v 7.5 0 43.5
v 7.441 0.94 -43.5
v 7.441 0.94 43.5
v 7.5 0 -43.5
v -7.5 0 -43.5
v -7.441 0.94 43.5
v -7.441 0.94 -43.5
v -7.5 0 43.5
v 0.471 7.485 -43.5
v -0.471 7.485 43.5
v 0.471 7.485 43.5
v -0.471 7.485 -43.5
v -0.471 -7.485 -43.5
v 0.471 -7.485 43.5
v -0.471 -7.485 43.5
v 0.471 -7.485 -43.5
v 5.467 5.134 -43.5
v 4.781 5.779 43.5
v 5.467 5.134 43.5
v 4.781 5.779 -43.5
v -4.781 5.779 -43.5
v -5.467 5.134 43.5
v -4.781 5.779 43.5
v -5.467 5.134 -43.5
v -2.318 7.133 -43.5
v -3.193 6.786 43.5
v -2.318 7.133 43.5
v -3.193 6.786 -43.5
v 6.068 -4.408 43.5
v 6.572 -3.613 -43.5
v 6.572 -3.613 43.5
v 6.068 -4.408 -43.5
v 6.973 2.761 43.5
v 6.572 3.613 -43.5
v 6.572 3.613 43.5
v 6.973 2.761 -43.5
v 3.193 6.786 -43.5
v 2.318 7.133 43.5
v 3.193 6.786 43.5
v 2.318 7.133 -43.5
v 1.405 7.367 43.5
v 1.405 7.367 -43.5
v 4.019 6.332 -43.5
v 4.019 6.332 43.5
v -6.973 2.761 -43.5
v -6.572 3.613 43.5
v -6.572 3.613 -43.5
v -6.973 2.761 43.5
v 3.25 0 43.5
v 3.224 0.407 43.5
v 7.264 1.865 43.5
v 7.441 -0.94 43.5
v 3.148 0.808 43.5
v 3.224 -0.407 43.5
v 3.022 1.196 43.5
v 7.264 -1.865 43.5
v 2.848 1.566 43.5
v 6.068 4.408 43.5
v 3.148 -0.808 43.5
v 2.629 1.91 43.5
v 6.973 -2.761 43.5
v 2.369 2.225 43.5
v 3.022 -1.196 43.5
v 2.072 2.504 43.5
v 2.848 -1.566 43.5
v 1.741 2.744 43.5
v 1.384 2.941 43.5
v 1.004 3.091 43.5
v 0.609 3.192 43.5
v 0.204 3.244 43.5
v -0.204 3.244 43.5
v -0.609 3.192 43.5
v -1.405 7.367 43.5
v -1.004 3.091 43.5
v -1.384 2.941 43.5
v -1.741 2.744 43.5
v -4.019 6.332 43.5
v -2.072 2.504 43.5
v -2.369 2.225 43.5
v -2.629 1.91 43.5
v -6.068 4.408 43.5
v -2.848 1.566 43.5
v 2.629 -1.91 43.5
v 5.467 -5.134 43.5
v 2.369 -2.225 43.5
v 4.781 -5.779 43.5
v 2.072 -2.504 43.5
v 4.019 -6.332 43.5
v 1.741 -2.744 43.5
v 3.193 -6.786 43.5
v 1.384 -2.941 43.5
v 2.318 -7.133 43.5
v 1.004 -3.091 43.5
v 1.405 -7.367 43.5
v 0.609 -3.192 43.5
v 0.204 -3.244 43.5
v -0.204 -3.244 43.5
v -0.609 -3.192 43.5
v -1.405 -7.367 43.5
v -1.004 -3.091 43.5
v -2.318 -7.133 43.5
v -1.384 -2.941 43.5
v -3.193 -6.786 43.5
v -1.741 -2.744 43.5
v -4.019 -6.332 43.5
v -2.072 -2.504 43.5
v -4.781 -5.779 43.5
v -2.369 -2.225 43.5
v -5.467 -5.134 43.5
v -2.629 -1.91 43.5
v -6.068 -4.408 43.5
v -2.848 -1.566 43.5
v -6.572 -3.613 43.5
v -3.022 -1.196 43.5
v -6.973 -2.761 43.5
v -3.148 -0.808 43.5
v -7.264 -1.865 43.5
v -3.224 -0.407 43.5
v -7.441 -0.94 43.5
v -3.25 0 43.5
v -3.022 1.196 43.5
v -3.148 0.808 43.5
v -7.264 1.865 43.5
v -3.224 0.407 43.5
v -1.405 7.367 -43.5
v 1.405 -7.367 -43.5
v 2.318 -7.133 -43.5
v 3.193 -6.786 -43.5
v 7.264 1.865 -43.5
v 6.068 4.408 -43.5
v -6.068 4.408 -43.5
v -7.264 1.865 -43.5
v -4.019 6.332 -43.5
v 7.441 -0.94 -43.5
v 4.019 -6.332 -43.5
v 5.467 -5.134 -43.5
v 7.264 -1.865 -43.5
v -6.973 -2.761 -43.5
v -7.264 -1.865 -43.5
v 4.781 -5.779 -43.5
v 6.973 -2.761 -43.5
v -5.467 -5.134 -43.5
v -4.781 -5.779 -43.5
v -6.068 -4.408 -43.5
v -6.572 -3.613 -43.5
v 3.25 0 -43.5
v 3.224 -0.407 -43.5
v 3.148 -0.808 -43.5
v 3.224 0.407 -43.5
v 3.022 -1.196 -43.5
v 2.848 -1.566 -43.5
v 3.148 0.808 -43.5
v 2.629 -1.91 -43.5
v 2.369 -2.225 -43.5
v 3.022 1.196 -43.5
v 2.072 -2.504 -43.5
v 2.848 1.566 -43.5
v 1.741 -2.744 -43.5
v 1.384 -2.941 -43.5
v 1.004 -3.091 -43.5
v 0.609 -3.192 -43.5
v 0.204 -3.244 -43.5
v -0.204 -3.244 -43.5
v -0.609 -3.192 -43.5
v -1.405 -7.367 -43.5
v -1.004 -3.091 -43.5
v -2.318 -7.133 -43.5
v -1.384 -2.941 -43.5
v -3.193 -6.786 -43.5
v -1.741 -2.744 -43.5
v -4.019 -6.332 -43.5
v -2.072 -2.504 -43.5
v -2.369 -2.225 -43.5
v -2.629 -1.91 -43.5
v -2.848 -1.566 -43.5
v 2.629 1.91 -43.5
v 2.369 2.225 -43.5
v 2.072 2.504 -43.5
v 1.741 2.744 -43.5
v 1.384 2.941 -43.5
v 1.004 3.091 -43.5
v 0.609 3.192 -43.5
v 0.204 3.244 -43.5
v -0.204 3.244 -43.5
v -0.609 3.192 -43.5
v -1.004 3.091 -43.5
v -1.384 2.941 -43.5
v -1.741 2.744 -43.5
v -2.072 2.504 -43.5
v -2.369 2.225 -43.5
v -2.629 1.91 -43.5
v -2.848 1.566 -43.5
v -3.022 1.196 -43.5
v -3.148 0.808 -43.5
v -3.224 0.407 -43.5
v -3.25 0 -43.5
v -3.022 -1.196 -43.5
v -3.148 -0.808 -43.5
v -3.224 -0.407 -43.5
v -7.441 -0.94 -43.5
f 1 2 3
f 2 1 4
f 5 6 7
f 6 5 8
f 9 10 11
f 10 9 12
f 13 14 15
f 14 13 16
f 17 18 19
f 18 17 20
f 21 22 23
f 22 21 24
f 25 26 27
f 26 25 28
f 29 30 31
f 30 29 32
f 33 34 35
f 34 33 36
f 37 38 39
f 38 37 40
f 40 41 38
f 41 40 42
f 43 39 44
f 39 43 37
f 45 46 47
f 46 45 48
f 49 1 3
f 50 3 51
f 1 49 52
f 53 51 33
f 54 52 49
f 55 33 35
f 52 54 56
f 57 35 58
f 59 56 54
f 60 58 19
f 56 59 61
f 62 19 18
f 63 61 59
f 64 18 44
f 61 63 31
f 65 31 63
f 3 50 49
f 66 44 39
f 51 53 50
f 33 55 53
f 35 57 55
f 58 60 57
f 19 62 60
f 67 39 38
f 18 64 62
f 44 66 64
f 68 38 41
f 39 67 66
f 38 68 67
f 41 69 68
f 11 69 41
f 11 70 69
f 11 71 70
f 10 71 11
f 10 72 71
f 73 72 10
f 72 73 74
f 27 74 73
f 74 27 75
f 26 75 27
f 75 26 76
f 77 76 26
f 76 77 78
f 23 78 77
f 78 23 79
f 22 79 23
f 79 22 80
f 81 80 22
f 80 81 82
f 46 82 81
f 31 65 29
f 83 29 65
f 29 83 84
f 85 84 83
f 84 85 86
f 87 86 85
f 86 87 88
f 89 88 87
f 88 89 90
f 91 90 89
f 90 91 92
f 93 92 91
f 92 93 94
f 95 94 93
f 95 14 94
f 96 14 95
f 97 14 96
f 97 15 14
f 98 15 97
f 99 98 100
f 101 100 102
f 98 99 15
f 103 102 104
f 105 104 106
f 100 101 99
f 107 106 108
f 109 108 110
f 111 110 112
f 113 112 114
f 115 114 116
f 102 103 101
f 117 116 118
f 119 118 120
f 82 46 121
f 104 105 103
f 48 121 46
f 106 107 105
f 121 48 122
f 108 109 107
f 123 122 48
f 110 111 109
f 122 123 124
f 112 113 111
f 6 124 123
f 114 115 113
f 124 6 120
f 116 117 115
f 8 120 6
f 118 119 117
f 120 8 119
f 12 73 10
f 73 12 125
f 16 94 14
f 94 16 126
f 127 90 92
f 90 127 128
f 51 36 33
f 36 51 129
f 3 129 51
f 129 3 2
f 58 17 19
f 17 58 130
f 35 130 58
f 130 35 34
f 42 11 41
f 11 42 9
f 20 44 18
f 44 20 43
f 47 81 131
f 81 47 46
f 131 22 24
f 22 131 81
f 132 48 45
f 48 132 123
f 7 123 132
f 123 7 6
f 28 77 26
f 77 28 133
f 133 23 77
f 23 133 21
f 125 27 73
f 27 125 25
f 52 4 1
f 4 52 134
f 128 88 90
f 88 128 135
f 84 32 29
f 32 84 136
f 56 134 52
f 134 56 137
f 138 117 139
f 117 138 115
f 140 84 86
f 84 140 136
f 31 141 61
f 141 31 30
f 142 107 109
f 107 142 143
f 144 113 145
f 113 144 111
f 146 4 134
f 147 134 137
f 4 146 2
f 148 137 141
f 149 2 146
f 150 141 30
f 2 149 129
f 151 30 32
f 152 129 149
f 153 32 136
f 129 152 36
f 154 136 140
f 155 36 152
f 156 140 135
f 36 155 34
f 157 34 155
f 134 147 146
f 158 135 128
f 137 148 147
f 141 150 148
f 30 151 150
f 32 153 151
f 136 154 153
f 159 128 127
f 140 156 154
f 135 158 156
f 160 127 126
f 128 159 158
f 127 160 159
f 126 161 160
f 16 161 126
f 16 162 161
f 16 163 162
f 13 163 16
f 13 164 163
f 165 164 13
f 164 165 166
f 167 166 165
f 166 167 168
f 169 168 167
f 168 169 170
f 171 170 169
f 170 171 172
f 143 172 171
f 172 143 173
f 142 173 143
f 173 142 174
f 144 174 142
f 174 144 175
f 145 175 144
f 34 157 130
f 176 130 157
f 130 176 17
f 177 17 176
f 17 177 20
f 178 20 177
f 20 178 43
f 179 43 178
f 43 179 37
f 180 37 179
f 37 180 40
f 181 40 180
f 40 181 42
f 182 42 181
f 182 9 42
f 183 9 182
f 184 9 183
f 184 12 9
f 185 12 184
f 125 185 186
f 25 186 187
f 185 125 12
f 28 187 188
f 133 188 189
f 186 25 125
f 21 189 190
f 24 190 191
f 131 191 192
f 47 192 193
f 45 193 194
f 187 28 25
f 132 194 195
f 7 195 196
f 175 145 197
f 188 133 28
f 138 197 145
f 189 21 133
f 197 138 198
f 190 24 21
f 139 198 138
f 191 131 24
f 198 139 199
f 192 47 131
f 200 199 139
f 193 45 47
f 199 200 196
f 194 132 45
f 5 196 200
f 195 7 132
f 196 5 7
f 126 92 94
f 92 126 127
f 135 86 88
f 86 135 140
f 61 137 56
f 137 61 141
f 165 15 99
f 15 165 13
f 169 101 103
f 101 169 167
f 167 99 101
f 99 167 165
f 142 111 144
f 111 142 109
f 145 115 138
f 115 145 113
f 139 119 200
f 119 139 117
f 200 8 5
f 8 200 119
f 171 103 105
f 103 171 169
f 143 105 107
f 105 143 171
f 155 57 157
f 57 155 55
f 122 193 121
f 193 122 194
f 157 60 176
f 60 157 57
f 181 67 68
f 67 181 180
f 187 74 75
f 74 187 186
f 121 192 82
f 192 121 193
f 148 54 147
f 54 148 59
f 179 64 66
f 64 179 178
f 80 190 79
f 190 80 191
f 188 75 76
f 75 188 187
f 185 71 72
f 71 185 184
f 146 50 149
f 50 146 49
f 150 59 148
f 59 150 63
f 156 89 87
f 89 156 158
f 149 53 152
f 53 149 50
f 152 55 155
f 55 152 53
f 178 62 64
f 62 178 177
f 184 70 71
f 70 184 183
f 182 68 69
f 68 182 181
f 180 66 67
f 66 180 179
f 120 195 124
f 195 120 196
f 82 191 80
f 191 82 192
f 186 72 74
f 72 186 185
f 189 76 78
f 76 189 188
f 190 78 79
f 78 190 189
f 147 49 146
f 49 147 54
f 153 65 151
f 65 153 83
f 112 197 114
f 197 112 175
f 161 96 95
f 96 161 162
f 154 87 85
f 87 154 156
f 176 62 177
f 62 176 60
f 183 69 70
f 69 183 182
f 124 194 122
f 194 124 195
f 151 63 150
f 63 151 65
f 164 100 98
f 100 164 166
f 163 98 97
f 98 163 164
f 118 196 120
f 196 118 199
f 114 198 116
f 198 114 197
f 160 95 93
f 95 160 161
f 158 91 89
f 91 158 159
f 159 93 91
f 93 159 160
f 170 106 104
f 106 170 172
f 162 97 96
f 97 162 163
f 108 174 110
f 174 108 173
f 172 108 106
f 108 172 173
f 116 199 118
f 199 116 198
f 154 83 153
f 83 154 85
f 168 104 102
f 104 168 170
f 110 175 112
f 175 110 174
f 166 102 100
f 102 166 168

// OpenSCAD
$fn = 50;


difference() {
	union() {
		translate(v = [0, 0, -43.5000000000]) {
			cylinder(h = 87, r = 7.5000000000);
		}
	}
	union() {
		translate(v = [0, 0, -100.0000000000]) {
			cylinder(h = 200, r = 3.2500000000);
		}
	}
}
